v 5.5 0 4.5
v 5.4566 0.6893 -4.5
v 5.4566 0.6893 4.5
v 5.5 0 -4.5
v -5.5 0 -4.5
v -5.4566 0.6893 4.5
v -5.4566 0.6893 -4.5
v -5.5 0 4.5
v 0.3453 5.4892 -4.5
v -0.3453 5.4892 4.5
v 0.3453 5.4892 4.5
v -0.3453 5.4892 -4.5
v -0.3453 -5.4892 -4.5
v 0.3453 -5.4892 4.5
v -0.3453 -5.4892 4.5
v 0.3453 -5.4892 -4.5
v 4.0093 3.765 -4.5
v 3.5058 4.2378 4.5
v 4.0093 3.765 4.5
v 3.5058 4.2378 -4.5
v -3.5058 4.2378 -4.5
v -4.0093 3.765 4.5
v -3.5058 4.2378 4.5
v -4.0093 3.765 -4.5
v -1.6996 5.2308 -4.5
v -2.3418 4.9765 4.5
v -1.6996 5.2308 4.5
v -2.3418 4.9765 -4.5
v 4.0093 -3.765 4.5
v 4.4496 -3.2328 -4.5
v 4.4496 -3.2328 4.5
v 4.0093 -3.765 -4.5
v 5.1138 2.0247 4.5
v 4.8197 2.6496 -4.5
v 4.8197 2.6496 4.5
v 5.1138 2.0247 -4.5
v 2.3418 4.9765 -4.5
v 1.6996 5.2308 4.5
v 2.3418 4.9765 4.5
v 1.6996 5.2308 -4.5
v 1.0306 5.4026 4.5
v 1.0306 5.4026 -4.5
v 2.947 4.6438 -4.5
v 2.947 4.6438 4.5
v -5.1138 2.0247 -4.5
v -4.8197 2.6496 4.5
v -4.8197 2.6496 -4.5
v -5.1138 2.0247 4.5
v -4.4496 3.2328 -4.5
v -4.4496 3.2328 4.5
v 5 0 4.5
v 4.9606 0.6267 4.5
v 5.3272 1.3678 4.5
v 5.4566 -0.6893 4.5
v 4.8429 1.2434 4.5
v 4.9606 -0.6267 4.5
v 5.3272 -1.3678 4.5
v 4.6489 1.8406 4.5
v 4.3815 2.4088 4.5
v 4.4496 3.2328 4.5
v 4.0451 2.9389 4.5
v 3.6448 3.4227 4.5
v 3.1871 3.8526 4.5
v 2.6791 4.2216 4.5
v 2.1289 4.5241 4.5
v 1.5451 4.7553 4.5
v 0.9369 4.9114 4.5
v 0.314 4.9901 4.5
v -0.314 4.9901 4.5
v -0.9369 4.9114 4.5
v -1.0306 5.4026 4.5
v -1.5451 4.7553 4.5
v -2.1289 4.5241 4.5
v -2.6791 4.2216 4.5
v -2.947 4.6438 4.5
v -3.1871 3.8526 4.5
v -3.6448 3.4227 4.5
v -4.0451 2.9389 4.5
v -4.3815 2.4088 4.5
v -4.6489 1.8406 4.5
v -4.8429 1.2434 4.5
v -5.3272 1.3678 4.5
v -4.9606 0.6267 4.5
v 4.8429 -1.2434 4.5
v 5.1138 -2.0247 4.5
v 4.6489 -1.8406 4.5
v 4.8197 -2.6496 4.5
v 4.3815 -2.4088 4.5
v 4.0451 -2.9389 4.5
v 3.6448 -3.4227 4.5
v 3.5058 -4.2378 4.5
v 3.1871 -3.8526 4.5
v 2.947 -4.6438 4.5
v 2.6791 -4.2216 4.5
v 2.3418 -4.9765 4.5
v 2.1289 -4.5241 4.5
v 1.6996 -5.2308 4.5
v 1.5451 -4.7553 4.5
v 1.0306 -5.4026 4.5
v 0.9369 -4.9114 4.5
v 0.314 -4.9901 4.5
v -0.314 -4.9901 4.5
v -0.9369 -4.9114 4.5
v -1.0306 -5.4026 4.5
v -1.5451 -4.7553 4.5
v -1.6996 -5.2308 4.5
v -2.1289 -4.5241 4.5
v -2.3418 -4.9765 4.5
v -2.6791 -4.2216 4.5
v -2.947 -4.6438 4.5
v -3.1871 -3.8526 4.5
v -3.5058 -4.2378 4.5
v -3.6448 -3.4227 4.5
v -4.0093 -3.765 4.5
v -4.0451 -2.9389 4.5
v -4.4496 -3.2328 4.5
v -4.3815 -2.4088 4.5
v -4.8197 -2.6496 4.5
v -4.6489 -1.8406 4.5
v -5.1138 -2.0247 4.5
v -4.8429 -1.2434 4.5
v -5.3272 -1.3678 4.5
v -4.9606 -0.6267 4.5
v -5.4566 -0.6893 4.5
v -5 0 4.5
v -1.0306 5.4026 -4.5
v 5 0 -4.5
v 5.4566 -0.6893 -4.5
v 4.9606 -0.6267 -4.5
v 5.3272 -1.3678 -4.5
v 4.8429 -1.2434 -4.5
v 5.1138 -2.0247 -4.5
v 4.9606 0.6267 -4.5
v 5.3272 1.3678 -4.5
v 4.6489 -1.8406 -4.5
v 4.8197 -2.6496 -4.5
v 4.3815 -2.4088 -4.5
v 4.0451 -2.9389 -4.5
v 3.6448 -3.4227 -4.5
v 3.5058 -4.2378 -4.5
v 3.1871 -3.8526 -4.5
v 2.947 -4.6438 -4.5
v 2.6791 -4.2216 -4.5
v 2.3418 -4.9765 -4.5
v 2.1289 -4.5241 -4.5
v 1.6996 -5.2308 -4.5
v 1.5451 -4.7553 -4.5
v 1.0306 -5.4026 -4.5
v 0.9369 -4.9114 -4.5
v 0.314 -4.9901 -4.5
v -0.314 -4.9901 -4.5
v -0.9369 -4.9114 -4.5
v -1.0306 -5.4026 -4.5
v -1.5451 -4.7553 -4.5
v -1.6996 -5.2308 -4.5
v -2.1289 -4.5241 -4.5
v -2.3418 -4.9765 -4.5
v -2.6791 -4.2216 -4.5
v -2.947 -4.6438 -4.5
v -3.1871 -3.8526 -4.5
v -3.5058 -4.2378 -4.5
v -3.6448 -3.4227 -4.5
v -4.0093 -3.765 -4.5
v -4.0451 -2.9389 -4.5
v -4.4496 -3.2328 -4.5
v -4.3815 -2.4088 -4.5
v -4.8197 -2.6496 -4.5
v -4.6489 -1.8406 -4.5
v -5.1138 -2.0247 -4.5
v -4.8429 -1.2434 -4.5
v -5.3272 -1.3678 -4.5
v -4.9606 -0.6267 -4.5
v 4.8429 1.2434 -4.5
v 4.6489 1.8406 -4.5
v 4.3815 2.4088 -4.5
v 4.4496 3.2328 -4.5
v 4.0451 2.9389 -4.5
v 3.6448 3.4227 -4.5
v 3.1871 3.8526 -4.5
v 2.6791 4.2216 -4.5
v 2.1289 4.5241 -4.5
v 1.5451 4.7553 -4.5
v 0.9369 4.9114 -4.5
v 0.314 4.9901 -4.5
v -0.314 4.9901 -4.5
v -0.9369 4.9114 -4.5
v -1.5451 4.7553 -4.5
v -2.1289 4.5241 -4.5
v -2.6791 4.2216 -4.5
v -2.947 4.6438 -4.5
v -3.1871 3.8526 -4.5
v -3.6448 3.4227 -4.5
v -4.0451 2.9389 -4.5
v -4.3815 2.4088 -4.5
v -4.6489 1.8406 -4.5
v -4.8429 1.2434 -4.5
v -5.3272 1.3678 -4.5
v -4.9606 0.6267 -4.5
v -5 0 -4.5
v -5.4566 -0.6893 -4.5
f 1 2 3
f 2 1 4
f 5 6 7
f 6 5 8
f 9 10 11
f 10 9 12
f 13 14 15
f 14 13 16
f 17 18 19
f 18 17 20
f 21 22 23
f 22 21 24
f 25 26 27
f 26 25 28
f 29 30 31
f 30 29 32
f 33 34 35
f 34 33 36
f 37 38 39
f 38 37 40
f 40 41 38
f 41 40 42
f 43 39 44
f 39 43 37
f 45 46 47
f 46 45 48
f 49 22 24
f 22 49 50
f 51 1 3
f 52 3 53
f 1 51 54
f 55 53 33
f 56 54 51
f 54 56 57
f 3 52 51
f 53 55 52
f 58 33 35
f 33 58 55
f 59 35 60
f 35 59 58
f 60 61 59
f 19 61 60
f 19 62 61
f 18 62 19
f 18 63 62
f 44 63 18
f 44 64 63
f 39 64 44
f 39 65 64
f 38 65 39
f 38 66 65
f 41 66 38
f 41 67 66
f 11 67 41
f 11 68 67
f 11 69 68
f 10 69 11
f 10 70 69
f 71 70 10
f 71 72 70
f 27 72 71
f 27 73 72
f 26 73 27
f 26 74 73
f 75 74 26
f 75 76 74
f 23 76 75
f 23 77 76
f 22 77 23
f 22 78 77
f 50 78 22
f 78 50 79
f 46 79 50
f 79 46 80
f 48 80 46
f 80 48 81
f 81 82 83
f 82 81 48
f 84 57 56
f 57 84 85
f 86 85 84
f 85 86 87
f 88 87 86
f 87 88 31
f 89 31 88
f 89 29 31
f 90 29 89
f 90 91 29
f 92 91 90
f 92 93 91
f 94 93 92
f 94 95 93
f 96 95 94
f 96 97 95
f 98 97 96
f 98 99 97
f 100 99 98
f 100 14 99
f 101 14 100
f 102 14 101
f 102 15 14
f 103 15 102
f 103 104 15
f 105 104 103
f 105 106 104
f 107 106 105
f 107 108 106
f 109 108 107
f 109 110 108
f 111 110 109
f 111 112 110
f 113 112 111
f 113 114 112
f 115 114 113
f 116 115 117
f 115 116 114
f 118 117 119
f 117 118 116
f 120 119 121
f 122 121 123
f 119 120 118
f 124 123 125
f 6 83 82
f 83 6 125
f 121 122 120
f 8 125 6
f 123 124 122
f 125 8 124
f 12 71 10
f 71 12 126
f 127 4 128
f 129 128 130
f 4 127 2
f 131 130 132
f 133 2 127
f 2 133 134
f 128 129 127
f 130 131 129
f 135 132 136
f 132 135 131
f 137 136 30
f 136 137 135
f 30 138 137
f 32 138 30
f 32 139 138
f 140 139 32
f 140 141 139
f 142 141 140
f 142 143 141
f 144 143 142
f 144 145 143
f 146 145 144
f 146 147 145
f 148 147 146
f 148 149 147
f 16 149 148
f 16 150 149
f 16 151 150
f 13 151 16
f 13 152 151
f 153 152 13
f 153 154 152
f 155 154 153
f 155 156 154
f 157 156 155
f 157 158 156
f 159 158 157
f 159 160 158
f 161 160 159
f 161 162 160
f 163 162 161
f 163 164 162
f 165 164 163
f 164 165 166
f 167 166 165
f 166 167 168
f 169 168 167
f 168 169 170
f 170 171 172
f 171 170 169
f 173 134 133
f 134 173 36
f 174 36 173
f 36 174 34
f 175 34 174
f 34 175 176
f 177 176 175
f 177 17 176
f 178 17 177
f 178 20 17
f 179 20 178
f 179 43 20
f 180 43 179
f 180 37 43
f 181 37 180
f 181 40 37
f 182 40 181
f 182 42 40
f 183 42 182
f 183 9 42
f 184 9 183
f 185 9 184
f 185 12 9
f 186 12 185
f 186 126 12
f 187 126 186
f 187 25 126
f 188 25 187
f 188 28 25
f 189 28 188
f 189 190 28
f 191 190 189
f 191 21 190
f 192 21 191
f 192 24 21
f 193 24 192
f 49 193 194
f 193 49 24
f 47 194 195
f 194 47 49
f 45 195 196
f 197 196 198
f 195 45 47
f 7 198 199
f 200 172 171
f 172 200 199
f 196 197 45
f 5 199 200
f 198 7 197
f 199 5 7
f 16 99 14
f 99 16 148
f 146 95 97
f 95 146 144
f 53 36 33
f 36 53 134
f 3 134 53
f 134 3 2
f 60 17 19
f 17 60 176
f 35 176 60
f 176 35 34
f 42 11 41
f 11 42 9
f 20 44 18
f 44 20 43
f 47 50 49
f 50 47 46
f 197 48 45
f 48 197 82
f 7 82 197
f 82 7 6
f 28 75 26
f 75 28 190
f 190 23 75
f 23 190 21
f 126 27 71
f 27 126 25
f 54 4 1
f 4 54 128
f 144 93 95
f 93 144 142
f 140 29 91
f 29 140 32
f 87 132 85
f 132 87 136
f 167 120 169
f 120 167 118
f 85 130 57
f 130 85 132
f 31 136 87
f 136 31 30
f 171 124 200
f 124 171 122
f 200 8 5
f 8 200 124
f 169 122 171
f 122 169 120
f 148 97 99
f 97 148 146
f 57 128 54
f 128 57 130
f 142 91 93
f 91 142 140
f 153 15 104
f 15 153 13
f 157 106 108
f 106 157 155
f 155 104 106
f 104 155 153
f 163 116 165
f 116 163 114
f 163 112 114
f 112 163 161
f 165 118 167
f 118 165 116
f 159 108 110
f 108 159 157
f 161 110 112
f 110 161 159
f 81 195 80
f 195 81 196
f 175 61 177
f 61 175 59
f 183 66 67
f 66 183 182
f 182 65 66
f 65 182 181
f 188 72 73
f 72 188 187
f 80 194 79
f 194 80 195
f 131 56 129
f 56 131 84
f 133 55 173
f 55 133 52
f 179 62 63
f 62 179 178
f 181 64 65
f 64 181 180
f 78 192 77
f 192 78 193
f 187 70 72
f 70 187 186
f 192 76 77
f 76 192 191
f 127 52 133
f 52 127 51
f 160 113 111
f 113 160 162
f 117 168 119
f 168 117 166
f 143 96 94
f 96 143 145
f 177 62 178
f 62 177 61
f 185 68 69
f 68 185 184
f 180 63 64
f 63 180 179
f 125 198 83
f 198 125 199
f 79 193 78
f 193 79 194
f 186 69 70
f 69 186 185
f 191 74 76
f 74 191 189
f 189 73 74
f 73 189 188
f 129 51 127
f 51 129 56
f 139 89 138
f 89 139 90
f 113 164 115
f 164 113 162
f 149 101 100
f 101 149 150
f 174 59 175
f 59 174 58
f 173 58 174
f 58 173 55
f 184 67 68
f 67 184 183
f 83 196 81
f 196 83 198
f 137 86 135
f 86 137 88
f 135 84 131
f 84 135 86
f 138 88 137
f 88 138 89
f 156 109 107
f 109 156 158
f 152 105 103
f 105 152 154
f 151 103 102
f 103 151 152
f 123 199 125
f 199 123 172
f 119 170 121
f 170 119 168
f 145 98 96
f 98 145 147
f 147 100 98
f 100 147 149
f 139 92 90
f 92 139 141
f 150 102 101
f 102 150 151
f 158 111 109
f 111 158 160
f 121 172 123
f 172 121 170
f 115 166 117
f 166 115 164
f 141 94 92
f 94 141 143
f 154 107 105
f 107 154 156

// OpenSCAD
$fn = 50;


difference() {
	union() {
		translate(v = [0, 0, -4.5000000000]) {
			cylinder(h = 9, r = 5.5000000000);
		}
	}
	union() {
		translate(v = [0, 0, -100.0000000000]) {
			cylinder(h = 200, r = 5);
		}
	}
}
